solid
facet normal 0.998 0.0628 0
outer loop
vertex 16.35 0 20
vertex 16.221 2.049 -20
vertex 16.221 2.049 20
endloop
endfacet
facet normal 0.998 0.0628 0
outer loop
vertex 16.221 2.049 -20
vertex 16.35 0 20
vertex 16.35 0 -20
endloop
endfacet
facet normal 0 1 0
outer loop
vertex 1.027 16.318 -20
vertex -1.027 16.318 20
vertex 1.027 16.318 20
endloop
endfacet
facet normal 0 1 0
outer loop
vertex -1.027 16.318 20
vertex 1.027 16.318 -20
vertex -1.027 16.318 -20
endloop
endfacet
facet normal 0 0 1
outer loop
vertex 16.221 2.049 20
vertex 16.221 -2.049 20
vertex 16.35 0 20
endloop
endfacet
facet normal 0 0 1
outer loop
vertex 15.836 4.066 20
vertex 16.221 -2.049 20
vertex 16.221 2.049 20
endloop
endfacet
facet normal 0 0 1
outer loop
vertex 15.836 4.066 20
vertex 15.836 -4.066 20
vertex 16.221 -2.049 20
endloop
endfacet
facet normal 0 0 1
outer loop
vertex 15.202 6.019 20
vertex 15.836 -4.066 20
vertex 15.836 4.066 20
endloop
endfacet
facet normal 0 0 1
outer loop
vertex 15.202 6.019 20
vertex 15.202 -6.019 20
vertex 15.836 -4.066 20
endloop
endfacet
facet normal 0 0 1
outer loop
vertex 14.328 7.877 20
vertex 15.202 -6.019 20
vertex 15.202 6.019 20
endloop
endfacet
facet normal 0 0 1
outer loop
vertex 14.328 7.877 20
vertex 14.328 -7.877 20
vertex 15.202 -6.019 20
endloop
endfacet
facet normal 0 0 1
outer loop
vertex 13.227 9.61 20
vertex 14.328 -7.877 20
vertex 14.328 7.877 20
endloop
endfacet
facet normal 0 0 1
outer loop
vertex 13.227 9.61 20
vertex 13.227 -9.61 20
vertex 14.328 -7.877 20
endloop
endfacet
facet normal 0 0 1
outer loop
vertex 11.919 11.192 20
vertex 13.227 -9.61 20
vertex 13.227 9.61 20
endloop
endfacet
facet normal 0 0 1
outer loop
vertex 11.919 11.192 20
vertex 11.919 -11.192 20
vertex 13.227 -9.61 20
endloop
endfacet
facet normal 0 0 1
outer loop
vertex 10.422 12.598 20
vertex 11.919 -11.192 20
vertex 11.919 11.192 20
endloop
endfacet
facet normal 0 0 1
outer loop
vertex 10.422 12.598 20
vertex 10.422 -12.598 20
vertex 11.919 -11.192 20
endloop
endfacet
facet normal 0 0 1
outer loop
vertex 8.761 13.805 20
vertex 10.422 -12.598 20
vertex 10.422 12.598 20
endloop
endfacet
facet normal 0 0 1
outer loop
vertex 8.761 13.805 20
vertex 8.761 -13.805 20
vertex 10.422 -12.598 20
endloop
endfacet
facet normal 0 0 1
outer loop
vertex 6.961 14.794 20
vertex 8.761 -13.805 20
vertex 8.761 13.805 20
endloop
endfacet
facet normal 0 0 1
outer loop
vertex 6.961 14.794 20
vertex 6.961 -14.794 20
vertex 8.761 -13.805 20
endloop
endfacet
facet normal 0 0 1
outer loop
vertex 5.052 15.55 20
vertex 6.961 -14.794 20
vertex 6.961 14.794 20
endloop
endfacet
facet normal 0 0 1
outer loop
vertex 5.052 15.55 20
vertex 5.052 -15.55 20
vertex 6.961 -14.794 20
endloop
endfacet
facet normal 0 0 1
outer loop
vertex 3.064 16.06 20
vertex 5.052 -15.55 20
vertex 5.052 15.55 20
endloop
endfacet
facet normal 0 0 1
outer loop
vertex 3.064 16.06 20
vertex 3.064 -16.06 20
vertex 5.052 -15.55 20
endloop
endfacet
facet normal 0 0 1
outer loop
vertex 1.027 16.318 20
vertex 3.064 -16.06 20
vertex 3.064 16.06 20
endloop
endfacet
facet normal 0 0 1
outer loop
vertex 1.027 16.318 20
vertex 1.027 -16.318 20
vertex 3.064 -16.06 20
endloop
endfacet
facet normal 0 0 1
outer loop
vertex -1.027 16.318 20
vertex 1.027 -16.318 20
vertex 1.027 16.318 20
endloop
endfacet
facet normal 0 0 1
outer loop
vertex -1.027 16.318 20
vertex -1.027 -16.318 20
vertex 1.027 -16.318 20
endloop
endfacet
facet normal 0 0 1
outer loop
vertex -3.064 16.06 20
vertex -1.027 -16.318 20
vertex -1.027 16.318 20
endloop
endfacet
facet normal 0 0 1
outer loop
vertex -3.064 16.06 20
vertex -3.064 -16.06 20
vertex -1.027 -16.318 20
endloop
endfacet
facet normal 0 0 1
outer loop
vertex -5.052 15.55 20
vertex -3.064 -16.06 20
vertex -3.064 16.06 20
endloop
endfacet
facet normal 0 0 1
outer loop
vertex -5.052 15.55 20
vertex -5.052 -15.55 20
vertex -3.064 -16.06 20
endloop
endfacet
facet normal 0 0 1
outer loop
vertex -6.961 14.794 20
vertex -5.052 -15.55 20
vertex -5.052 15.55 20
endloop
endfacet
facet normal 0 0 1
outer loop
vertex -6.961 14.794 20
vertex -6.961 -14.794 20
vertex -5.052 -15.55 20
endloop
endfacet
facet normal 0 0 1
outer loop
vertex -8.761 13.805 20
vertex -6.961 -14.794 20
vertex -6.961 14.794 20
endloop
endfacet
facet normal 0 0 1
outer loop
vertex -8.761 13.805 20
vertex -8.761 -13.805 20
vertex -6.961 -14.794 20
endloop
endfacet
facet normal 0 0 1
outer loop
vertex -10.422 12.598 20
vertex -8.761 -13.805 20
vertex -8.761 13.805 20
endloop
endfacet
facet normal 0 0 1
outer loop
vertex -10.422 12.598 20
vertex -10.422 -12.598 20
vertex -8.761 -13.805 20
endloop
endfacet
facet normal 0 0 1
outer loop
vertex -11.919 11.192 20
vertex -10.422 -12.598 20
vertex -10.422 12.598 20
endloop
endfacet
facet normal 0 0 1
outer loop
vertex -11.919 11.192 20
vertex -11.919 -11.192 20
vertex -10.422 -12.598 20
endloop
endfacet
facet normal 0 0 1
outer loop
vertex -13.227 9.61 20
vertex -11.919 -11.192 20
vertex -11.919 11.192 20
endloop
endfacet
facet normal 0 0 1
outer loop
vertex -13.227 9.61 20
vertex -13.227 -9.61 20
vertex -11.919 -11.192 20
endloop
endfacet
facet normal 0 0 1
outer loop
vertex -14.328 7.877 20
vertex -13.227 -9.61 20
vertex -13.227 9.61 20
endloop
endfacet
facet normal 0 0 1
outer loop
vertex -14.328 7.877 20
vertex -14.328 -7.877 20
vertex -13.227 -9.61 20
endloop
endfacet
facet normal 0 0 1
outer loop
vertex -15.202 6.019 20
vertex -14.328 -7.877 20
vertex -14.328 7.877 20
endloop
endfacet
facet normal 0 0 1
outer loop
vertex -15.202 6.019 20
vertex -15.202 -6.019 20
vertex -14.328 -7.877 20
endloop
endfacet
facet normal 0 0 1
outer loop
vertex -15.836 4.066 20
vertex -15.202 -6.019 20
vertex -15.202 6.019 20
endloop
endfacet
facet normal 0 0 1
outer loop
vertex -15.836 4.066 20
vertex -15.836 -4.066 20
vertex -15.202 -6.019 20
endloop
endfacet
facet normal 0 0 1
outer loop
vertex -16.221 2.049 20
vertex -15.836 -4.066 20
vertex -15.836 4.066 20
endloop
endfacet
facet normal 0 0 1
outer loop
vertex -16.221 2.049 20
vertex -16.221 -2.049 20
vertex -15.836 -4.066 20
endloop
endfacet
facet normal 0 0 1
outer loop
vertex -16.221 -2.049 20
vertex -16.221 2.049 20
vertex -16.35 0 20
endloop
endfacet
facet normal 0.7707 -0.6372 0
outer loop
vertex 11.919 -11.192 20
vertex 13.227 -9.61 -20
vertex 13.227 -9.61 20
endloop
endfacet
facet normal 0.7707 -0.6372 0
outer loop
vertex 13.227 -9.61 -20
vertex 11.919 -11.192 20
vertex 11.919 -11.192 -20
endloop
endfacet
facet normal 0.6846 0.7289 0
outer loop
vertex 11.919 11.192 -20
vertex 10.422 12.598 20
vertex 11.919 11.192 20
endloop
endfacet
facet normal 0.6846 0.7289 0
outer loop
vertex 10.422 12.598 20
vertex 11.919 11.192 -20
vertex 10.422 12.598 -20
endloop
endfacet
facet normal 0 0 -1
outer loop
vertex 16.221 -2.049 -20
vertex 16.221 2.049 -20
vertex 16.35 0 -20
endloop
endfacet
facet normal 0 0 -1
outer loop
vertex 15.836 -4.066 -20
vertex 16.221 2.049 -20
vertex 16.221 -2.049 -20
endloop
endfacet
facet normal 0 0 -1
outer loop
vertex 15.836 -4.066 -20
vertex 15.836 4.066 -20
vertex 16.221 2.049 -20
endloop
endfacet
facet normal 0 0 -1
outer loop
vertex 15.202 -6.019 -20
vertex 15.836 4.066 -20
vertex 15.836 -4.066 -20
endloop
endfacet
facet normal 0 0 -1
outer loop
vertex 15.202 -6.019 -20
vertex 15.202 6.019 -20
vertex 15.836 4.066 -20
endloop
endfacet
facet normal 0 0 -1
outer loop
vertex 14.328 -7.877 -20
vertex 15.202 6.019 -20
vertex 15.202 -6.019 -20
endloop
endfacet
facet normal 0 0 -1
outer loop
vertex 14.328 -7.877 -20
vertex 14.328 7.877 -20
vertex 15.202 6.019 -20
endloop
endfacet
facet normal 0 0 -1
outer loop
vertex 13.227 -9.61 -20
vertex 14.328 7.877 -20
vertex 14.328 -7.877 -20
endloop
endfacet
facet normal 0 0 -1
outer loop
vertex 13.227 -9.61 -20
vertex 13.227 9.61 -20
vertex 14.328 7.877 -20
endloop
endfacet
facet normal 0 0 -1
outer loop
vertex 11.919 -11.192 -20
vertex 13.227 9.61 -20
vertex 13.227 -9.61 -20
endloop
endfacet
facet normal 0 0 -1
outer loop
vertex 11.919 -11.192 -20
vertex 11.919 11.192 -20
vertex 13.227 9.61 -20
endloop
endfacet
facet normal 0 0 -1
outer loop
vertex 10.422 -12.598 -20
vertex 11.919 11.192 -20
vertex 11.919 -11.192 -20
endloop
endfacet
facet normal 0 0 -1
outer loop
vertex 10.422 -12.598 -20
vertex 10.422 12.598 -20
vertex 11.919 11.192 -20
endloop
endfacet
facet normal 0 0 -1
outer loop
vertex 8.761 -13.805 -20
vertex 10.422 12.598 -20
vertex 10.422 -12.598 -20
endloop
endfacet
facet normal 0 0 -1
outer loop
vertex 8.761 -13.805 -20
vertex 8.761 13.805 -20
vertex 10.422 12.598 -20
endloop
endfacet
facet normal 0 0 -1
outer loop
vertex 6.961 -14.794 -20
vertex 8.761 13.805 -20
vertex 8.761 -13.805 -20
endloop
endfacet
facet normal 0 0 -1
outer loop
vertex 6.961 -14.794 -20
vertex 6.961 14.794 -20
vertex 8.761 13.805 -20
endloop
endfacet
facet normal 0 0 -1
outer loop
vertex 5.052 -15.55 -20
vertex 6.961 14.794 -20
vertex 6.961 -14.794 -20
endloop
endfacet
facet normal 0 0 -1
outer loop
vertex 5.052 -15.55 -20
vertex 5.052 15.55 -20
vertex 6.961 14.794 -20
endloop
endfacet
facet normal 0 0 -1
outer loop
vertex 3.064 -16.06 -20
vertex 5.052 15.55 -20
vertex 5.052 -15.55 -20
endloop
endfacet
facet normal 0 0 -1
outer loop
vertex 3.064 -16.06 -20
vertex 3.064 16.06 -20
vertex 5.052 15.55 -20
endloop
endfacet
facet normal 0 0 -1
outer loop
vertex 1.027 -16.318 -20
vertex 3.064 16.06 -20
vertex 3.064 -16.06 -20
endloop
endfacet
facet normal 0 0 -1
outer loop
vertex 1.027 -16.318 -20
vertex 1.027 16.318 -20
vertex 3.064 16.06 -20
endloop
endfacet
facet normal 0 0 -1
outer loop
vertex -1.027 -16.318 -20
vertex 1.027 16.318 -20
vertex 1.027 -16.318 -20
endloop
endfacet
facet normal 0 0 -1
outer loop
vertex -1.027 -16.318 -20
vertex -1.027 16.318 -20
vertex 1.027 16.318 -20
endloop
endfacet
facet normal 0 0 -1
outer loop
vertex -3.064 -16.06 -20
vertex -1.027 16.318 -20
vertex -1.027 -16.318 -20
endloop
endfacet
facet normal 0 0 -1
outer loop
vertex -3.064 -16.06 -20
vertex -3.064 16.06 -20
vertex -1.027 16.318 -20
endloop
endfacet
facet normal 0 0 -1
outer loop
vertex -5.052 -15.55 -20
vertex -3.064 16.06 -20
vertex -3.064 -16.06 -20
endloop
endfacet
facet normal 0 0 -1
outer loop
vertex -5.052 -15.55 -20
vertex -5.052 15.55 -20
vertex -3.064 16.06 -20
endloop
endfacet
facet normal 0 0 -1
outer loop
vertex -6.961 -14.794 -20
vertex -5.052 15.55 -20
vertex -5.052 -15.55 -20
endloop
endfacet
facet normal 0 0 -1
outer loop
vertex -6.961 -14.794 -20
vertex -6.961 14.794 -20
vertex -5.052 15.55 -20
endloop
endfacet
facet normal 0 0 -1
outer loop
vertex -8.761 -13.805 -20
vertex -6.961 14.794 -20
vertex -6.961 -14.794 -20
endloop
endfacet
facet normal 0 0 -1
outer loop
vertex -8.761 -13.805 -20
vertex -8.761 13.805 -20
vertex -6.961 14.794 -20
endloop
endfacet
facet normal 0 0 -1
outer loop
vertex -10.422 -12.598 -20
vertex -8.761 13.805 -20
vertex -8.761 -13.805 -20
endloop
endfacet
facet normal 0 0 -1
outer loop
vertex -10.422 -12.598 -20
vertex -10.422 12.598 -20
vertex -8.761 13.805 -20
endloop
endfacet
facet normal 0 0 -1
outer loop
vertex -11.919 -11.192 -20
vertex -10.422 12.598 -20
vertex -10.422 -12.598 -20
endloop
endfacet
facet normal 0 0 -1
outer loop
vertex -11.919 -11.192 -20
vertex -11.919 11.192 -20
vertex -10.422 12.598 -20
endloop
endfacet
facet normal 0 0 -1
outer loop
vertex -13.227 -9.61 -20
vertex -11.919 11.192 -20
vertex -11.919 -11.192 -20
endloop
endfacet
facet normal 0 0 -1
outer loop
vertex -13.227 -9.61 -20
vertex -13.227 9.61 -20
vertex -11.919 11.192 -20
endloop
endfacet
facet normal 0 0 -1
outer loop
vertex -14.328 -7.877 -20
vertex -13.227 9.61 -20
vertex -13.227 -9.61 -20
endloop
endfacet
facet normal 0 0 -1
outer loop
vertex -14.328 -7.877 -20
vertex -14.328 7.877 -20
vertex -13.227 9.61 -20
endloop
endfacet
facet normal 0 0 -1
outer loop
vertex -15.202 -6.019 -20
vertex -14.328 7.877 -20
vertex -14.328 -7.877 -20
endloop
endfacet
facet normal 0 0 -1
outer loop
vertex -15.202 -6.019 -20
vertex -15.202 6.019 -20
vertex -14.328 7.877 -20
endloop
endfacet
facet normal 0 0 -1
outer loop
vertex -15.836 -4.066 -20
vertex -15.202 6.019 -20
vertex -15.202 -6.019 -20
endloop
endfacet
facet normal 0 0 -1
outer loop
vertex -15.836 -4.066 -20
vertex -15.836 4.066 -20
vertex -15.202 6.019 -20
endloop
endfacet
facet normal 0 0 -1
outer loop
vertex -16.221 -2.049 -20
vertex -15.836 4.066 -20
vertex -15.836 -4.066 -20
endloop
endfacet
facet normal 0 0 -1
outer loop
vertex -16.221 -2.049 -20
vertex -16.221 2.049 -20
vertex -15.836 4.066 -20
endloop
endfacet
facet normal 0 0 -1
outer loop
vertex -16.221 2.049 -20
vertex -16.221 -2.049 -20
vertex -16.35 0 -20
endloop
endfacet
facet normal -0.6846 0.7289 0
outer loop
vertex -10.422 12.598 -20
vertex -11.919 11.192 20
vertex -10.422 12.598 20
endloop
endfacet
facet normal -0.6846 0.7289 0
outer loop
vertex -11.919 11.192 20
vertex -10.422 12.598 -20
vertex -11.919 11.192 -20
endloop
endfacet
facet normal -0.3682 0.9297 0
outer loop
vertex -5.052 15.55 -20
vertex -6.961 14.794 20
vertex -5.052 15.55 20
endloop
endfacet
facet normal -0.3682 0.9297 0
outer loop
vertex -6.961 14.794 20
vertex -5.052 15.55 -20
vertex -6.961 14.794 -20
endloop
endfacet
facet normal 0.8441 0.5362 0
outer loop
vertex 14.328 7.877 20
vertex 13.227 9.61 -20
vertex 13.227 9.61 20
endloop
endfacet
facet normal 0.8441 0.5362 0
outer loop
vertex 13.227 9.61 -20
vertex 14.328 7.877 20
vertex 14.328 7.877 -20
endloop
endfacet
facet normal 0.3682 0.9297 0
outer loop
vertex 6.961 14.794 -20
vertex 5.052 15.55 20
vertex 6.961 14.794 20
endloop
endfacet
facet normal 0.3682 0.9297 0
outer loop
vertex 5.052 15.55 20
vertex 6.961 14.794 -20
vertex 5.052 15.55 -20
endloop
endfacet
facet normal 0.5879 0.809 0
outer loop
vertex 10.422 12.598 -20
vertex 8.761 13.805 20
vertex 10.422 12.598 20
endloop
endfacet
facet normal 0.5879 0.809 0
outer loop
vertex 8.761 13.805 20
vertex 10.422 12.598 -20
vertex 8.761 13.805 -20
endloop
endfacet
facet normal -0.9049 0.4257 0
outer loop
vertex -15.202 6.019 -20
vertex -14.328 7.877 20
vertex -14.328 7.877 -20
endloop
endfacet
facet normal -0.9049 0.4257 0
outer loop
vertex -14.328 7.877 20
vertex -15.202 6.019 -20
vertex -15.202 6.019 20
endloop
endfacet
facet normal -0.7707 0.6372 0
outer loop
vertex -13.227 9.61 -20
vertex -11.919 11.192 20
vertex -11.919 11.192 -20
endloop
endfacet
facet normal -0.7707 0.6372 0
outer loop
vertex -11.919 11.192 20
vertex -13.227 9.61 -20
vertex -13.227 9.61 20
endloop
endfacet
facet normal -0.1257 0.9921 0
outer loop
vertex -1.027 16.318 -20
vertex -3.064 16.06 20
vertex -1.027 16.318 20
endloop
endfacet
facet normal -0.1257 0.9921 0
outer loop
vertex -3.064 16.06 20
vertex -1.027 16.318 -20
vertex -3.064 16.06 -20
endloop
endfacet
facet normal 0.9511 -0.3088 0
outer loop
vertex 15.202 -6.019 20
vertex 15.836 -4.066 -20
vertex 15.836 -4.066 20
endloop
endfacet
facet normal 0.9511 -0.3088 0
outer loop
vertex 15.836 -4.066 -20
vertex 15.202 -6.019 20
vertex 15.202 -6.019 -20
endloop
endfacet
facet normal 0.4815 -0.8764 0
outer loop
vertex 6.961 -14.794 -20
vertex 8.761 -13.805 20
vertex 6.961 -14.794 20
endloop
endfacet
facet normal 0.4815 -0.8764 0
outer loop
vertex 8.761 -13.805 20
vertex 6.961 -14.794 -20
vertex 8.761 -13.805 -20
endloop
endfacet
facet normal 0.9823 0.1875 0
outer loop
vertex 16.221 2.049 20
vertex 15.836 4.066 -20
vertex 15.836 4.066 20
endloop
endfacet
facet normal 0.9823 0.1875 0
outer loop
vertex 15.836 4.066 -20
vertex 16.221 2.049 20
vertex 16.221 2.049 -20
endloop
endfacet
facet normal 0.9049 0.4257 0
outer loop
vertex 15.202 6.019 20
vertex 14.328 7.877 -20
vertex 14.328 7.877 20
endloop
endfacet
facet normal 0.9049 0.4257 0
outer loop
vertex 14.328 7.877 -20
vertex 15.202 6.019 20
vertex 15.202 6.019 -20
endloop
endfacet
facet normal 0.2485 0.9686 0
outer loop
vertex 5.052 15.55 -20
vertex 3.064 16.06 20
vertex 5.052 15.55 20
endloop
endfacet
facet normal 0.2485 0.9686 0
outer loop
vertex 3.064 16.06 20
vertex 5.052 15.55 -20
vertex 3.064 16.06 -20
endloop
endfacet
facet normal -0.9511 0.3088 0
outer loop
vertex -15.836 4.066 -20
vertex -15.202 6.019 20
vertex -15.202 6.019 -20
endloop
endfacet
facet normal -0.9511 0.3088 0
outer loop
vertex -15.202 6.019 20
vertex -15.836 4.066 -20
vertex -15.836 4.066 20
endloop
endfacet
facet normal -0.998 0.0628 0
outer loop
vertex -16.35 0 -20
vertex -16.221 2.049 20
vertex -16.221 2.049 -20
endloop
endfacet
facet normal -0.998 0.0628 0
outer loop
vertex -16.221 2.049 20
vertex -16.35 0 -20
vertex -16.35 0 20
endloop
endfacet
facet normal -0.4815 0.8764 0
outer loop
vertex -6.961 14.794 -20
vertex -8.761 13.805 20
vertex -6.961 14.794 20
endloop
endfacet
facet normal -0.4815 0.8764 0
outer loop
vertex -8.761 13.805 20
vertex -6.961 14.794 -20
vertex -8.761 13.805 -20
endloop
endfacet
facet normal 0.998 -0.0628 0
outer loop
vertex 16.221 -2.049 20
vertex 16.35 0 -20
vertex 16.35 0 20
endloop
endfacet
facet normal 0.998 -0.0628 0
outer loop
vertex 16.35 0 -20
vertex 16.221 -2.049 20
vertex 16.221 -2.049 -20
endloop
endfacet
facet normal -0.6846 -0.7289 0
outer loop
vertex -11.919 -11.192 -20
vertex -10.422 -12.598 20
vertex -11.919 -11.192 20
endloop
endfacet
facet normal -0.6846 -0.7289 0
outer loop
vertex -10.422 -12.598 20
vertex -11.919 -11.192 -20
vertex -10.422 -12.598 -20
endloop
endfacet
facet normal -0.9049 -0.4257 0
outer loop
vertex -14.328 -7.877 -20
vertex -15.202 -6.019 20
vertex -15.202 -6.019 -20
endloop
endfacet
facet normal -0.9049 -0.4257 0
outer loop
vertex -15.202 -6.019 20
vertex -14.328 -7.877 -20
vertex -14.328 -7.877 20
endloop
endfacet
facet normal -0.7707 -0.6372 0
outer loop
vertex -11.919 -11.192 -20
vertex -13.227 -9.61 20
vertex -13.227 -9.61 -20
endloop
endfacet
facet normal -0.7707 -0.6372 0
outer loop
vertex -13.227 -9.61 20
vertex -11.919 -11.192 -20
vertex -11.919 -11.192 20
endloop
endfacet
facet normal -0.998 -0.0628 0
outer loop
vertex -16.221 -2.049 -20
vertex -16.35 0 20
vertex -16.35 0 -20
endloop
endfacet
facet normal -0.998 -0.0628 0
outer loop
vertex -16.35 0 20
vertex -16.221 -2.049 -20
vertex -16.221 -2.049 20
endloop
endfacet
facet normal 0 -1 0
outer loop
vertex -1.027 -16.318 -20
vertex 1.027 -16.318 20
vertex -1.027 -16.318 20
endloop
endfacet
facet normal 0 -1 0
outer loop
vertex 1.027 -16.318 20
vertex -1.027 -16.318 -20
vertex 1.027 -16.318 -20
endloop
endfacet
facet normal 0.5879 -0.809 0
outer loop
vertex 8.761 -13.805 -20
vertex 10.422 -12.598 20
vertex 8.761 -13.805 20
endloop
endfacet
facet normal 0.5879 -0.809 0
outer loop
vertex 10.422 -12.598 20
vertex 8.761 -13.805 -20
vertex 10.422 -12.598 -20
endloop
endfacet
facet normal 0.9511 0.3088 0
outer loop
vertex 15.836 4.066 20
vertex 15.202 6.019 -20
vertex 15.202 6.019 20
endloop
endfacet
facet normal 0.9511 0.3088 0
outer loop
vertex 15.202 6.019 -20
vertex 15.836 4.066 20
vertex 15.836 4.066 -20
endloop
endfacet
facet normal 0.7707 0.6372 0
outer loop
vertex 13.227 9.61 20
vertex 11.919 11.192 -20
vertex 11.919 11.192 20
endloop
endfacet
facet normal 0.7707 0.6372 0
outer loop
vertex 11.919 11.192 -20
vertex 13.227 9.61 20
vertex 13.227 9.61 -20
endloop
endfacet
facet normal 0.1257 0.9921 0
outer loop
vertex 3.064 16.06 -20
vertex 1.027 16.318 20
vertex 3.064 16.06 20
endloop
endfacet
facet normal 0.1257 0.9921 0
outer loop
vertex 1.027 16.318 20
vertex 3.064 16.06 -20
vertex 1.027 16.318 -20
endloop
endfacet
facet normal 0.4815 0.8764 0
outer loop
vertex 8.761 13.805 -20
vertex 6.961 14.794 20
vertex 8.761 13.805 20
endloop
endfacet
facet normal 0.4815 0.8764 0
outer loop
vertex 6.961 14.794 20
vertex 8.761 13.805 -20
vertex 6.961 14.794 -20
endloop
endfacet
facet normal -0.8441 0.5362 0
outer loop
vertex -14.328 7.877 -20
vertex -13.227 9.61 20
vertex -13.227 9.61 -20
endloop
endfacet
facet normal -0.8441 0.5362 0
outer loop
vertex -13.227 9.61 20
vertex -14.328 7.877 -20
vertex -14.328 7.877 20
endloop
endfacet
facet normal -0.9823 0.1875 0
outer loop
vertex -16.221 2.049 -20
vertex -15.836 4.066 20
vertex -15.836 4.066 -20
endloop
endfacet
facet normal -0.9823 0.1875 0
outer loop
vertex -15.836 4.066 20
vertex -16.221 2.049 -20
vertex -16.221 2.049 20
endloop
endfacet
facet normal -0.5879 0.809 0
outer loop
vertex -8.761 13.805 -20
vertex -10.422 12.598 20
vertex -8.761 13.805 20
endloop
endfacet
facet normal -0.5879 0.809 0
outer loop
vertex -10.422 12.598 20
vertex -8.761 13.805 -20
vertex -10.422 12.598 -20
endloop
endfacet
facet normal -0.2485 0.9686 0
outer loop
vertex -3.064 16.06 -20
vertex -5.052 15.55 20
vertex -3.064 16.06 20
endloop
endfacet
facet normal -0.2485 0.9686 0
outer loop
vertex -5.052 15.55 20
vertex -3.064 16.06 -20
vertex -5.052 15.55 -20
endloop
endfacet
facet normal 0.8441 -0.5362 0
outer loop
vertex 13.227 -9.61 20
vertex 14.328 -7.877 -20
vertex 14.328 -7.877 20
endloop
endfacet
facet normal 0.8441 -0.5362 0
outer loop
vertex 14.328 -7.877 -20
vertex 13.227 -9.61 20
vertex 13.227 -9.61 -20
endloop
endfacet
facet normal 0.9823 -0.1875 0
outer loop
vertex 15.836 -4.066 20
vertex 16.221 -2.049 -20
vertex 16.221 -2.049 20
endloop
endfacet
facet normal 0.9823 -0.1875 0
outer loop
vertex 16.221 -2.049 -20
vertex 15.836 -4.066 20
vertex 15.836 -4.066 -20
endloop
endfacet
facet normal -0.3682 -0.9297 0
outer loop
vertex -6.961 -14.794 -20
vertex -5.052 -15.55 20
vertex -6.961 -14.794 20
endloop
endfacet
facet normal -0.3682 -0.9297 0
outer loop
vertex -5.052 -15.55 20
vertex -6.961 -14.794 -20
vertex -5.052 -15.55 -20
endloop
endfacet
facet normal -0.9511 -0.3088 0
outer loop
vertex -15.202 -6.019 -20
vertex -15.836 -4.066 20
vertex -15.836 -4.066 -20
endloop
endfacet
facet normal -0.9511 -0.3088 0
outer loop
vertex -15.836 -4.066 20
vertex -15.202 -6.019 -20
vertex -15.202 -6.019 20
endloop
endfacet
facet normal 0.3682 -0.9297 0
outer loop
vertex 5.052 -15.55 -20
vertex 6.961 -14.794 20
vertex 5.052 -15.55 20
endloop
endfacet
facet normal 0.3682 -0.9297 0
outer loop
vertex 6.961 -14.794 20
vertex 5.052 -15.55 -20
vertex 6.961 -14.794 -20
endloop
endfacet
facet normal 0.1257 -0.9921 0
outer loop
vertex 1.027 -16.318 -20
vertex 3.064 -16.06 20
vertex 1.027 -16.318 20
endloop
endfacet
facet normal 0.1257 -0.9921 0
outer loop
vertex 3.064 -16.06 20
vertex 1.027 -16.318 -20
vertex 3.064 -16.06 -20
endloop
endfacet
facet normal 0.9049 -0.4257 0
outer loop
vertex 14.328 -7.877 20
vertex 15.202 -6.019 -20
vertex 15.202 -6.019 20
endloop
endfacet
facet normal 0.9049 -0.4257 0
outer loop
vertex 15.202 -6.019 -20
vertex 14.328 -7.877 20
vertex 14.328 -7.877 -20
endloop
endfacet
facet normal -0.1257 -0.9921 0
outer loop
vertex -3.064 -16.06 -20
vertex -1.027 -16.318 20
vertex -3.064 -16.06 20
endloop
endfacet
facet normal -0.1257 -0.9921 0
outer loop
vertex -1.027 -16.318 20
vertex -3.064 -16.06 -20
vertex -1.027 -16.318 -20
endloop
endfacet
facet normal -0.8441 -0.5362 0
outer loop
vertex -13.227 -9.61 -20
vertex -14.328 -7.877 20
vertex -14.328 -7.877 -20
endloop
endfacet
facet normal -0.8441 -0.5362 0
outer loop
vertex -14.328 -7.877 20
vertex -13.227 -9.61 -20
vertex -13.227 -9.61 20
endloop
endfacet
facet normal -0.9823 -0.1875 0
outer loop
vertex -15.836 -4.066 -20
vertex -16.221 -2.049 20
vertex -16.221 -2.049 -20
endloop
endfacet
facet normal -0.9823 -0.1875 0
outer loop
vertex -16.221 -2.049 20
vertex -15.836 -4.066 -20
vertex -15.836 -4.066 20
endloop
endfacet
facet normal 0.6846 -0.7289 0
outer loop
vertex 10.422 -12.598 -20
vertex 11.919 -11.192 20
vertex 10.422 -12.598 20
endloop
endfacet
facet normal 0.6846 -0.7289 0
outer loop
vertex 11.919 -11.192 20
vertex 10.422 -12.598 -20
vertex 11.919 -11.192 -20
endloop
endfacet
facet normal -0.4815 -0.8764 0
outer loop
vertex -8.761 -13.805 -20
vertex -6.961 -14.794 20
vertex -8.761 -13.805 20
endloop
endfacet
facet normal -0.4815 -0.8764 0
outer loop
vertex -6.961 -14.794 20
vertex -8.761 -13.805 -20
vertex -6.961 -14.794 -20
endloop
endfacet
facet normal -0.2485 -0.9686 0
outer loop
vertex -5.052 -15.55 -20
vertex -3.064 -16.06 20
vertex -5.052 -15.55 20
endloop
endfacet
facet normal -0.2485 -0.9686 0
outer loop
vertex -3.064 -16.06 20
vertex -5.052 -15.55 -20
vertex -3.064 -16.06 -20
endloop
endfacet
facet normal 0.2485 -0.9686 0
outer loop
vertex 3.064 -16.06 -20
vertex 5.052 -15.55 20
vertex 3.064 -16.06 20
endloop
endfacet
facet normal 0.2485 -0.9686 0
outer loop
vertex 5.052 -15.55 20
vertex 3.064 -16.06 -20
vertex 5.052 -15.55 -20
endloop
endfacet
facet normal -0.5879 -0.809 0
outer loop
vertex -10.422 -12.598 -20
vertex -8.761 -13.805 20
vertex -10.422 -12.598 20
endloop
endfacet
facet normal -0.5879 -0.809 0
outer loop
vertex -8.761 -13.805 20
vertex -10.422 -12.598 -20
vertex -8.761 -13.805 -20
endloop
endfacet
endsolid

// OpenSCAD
$fn = 50;


difference() {
	union() {
		translate(v = [0, 0, -20.0000000000]) {
			cylinder(h = 40, r = 16.3500000000);
		}
	}
	union() {
		translate(v = [0, 0, -100.0000000000]) {
			cylinder(h = 200, r = 0);
		}
	}
}
